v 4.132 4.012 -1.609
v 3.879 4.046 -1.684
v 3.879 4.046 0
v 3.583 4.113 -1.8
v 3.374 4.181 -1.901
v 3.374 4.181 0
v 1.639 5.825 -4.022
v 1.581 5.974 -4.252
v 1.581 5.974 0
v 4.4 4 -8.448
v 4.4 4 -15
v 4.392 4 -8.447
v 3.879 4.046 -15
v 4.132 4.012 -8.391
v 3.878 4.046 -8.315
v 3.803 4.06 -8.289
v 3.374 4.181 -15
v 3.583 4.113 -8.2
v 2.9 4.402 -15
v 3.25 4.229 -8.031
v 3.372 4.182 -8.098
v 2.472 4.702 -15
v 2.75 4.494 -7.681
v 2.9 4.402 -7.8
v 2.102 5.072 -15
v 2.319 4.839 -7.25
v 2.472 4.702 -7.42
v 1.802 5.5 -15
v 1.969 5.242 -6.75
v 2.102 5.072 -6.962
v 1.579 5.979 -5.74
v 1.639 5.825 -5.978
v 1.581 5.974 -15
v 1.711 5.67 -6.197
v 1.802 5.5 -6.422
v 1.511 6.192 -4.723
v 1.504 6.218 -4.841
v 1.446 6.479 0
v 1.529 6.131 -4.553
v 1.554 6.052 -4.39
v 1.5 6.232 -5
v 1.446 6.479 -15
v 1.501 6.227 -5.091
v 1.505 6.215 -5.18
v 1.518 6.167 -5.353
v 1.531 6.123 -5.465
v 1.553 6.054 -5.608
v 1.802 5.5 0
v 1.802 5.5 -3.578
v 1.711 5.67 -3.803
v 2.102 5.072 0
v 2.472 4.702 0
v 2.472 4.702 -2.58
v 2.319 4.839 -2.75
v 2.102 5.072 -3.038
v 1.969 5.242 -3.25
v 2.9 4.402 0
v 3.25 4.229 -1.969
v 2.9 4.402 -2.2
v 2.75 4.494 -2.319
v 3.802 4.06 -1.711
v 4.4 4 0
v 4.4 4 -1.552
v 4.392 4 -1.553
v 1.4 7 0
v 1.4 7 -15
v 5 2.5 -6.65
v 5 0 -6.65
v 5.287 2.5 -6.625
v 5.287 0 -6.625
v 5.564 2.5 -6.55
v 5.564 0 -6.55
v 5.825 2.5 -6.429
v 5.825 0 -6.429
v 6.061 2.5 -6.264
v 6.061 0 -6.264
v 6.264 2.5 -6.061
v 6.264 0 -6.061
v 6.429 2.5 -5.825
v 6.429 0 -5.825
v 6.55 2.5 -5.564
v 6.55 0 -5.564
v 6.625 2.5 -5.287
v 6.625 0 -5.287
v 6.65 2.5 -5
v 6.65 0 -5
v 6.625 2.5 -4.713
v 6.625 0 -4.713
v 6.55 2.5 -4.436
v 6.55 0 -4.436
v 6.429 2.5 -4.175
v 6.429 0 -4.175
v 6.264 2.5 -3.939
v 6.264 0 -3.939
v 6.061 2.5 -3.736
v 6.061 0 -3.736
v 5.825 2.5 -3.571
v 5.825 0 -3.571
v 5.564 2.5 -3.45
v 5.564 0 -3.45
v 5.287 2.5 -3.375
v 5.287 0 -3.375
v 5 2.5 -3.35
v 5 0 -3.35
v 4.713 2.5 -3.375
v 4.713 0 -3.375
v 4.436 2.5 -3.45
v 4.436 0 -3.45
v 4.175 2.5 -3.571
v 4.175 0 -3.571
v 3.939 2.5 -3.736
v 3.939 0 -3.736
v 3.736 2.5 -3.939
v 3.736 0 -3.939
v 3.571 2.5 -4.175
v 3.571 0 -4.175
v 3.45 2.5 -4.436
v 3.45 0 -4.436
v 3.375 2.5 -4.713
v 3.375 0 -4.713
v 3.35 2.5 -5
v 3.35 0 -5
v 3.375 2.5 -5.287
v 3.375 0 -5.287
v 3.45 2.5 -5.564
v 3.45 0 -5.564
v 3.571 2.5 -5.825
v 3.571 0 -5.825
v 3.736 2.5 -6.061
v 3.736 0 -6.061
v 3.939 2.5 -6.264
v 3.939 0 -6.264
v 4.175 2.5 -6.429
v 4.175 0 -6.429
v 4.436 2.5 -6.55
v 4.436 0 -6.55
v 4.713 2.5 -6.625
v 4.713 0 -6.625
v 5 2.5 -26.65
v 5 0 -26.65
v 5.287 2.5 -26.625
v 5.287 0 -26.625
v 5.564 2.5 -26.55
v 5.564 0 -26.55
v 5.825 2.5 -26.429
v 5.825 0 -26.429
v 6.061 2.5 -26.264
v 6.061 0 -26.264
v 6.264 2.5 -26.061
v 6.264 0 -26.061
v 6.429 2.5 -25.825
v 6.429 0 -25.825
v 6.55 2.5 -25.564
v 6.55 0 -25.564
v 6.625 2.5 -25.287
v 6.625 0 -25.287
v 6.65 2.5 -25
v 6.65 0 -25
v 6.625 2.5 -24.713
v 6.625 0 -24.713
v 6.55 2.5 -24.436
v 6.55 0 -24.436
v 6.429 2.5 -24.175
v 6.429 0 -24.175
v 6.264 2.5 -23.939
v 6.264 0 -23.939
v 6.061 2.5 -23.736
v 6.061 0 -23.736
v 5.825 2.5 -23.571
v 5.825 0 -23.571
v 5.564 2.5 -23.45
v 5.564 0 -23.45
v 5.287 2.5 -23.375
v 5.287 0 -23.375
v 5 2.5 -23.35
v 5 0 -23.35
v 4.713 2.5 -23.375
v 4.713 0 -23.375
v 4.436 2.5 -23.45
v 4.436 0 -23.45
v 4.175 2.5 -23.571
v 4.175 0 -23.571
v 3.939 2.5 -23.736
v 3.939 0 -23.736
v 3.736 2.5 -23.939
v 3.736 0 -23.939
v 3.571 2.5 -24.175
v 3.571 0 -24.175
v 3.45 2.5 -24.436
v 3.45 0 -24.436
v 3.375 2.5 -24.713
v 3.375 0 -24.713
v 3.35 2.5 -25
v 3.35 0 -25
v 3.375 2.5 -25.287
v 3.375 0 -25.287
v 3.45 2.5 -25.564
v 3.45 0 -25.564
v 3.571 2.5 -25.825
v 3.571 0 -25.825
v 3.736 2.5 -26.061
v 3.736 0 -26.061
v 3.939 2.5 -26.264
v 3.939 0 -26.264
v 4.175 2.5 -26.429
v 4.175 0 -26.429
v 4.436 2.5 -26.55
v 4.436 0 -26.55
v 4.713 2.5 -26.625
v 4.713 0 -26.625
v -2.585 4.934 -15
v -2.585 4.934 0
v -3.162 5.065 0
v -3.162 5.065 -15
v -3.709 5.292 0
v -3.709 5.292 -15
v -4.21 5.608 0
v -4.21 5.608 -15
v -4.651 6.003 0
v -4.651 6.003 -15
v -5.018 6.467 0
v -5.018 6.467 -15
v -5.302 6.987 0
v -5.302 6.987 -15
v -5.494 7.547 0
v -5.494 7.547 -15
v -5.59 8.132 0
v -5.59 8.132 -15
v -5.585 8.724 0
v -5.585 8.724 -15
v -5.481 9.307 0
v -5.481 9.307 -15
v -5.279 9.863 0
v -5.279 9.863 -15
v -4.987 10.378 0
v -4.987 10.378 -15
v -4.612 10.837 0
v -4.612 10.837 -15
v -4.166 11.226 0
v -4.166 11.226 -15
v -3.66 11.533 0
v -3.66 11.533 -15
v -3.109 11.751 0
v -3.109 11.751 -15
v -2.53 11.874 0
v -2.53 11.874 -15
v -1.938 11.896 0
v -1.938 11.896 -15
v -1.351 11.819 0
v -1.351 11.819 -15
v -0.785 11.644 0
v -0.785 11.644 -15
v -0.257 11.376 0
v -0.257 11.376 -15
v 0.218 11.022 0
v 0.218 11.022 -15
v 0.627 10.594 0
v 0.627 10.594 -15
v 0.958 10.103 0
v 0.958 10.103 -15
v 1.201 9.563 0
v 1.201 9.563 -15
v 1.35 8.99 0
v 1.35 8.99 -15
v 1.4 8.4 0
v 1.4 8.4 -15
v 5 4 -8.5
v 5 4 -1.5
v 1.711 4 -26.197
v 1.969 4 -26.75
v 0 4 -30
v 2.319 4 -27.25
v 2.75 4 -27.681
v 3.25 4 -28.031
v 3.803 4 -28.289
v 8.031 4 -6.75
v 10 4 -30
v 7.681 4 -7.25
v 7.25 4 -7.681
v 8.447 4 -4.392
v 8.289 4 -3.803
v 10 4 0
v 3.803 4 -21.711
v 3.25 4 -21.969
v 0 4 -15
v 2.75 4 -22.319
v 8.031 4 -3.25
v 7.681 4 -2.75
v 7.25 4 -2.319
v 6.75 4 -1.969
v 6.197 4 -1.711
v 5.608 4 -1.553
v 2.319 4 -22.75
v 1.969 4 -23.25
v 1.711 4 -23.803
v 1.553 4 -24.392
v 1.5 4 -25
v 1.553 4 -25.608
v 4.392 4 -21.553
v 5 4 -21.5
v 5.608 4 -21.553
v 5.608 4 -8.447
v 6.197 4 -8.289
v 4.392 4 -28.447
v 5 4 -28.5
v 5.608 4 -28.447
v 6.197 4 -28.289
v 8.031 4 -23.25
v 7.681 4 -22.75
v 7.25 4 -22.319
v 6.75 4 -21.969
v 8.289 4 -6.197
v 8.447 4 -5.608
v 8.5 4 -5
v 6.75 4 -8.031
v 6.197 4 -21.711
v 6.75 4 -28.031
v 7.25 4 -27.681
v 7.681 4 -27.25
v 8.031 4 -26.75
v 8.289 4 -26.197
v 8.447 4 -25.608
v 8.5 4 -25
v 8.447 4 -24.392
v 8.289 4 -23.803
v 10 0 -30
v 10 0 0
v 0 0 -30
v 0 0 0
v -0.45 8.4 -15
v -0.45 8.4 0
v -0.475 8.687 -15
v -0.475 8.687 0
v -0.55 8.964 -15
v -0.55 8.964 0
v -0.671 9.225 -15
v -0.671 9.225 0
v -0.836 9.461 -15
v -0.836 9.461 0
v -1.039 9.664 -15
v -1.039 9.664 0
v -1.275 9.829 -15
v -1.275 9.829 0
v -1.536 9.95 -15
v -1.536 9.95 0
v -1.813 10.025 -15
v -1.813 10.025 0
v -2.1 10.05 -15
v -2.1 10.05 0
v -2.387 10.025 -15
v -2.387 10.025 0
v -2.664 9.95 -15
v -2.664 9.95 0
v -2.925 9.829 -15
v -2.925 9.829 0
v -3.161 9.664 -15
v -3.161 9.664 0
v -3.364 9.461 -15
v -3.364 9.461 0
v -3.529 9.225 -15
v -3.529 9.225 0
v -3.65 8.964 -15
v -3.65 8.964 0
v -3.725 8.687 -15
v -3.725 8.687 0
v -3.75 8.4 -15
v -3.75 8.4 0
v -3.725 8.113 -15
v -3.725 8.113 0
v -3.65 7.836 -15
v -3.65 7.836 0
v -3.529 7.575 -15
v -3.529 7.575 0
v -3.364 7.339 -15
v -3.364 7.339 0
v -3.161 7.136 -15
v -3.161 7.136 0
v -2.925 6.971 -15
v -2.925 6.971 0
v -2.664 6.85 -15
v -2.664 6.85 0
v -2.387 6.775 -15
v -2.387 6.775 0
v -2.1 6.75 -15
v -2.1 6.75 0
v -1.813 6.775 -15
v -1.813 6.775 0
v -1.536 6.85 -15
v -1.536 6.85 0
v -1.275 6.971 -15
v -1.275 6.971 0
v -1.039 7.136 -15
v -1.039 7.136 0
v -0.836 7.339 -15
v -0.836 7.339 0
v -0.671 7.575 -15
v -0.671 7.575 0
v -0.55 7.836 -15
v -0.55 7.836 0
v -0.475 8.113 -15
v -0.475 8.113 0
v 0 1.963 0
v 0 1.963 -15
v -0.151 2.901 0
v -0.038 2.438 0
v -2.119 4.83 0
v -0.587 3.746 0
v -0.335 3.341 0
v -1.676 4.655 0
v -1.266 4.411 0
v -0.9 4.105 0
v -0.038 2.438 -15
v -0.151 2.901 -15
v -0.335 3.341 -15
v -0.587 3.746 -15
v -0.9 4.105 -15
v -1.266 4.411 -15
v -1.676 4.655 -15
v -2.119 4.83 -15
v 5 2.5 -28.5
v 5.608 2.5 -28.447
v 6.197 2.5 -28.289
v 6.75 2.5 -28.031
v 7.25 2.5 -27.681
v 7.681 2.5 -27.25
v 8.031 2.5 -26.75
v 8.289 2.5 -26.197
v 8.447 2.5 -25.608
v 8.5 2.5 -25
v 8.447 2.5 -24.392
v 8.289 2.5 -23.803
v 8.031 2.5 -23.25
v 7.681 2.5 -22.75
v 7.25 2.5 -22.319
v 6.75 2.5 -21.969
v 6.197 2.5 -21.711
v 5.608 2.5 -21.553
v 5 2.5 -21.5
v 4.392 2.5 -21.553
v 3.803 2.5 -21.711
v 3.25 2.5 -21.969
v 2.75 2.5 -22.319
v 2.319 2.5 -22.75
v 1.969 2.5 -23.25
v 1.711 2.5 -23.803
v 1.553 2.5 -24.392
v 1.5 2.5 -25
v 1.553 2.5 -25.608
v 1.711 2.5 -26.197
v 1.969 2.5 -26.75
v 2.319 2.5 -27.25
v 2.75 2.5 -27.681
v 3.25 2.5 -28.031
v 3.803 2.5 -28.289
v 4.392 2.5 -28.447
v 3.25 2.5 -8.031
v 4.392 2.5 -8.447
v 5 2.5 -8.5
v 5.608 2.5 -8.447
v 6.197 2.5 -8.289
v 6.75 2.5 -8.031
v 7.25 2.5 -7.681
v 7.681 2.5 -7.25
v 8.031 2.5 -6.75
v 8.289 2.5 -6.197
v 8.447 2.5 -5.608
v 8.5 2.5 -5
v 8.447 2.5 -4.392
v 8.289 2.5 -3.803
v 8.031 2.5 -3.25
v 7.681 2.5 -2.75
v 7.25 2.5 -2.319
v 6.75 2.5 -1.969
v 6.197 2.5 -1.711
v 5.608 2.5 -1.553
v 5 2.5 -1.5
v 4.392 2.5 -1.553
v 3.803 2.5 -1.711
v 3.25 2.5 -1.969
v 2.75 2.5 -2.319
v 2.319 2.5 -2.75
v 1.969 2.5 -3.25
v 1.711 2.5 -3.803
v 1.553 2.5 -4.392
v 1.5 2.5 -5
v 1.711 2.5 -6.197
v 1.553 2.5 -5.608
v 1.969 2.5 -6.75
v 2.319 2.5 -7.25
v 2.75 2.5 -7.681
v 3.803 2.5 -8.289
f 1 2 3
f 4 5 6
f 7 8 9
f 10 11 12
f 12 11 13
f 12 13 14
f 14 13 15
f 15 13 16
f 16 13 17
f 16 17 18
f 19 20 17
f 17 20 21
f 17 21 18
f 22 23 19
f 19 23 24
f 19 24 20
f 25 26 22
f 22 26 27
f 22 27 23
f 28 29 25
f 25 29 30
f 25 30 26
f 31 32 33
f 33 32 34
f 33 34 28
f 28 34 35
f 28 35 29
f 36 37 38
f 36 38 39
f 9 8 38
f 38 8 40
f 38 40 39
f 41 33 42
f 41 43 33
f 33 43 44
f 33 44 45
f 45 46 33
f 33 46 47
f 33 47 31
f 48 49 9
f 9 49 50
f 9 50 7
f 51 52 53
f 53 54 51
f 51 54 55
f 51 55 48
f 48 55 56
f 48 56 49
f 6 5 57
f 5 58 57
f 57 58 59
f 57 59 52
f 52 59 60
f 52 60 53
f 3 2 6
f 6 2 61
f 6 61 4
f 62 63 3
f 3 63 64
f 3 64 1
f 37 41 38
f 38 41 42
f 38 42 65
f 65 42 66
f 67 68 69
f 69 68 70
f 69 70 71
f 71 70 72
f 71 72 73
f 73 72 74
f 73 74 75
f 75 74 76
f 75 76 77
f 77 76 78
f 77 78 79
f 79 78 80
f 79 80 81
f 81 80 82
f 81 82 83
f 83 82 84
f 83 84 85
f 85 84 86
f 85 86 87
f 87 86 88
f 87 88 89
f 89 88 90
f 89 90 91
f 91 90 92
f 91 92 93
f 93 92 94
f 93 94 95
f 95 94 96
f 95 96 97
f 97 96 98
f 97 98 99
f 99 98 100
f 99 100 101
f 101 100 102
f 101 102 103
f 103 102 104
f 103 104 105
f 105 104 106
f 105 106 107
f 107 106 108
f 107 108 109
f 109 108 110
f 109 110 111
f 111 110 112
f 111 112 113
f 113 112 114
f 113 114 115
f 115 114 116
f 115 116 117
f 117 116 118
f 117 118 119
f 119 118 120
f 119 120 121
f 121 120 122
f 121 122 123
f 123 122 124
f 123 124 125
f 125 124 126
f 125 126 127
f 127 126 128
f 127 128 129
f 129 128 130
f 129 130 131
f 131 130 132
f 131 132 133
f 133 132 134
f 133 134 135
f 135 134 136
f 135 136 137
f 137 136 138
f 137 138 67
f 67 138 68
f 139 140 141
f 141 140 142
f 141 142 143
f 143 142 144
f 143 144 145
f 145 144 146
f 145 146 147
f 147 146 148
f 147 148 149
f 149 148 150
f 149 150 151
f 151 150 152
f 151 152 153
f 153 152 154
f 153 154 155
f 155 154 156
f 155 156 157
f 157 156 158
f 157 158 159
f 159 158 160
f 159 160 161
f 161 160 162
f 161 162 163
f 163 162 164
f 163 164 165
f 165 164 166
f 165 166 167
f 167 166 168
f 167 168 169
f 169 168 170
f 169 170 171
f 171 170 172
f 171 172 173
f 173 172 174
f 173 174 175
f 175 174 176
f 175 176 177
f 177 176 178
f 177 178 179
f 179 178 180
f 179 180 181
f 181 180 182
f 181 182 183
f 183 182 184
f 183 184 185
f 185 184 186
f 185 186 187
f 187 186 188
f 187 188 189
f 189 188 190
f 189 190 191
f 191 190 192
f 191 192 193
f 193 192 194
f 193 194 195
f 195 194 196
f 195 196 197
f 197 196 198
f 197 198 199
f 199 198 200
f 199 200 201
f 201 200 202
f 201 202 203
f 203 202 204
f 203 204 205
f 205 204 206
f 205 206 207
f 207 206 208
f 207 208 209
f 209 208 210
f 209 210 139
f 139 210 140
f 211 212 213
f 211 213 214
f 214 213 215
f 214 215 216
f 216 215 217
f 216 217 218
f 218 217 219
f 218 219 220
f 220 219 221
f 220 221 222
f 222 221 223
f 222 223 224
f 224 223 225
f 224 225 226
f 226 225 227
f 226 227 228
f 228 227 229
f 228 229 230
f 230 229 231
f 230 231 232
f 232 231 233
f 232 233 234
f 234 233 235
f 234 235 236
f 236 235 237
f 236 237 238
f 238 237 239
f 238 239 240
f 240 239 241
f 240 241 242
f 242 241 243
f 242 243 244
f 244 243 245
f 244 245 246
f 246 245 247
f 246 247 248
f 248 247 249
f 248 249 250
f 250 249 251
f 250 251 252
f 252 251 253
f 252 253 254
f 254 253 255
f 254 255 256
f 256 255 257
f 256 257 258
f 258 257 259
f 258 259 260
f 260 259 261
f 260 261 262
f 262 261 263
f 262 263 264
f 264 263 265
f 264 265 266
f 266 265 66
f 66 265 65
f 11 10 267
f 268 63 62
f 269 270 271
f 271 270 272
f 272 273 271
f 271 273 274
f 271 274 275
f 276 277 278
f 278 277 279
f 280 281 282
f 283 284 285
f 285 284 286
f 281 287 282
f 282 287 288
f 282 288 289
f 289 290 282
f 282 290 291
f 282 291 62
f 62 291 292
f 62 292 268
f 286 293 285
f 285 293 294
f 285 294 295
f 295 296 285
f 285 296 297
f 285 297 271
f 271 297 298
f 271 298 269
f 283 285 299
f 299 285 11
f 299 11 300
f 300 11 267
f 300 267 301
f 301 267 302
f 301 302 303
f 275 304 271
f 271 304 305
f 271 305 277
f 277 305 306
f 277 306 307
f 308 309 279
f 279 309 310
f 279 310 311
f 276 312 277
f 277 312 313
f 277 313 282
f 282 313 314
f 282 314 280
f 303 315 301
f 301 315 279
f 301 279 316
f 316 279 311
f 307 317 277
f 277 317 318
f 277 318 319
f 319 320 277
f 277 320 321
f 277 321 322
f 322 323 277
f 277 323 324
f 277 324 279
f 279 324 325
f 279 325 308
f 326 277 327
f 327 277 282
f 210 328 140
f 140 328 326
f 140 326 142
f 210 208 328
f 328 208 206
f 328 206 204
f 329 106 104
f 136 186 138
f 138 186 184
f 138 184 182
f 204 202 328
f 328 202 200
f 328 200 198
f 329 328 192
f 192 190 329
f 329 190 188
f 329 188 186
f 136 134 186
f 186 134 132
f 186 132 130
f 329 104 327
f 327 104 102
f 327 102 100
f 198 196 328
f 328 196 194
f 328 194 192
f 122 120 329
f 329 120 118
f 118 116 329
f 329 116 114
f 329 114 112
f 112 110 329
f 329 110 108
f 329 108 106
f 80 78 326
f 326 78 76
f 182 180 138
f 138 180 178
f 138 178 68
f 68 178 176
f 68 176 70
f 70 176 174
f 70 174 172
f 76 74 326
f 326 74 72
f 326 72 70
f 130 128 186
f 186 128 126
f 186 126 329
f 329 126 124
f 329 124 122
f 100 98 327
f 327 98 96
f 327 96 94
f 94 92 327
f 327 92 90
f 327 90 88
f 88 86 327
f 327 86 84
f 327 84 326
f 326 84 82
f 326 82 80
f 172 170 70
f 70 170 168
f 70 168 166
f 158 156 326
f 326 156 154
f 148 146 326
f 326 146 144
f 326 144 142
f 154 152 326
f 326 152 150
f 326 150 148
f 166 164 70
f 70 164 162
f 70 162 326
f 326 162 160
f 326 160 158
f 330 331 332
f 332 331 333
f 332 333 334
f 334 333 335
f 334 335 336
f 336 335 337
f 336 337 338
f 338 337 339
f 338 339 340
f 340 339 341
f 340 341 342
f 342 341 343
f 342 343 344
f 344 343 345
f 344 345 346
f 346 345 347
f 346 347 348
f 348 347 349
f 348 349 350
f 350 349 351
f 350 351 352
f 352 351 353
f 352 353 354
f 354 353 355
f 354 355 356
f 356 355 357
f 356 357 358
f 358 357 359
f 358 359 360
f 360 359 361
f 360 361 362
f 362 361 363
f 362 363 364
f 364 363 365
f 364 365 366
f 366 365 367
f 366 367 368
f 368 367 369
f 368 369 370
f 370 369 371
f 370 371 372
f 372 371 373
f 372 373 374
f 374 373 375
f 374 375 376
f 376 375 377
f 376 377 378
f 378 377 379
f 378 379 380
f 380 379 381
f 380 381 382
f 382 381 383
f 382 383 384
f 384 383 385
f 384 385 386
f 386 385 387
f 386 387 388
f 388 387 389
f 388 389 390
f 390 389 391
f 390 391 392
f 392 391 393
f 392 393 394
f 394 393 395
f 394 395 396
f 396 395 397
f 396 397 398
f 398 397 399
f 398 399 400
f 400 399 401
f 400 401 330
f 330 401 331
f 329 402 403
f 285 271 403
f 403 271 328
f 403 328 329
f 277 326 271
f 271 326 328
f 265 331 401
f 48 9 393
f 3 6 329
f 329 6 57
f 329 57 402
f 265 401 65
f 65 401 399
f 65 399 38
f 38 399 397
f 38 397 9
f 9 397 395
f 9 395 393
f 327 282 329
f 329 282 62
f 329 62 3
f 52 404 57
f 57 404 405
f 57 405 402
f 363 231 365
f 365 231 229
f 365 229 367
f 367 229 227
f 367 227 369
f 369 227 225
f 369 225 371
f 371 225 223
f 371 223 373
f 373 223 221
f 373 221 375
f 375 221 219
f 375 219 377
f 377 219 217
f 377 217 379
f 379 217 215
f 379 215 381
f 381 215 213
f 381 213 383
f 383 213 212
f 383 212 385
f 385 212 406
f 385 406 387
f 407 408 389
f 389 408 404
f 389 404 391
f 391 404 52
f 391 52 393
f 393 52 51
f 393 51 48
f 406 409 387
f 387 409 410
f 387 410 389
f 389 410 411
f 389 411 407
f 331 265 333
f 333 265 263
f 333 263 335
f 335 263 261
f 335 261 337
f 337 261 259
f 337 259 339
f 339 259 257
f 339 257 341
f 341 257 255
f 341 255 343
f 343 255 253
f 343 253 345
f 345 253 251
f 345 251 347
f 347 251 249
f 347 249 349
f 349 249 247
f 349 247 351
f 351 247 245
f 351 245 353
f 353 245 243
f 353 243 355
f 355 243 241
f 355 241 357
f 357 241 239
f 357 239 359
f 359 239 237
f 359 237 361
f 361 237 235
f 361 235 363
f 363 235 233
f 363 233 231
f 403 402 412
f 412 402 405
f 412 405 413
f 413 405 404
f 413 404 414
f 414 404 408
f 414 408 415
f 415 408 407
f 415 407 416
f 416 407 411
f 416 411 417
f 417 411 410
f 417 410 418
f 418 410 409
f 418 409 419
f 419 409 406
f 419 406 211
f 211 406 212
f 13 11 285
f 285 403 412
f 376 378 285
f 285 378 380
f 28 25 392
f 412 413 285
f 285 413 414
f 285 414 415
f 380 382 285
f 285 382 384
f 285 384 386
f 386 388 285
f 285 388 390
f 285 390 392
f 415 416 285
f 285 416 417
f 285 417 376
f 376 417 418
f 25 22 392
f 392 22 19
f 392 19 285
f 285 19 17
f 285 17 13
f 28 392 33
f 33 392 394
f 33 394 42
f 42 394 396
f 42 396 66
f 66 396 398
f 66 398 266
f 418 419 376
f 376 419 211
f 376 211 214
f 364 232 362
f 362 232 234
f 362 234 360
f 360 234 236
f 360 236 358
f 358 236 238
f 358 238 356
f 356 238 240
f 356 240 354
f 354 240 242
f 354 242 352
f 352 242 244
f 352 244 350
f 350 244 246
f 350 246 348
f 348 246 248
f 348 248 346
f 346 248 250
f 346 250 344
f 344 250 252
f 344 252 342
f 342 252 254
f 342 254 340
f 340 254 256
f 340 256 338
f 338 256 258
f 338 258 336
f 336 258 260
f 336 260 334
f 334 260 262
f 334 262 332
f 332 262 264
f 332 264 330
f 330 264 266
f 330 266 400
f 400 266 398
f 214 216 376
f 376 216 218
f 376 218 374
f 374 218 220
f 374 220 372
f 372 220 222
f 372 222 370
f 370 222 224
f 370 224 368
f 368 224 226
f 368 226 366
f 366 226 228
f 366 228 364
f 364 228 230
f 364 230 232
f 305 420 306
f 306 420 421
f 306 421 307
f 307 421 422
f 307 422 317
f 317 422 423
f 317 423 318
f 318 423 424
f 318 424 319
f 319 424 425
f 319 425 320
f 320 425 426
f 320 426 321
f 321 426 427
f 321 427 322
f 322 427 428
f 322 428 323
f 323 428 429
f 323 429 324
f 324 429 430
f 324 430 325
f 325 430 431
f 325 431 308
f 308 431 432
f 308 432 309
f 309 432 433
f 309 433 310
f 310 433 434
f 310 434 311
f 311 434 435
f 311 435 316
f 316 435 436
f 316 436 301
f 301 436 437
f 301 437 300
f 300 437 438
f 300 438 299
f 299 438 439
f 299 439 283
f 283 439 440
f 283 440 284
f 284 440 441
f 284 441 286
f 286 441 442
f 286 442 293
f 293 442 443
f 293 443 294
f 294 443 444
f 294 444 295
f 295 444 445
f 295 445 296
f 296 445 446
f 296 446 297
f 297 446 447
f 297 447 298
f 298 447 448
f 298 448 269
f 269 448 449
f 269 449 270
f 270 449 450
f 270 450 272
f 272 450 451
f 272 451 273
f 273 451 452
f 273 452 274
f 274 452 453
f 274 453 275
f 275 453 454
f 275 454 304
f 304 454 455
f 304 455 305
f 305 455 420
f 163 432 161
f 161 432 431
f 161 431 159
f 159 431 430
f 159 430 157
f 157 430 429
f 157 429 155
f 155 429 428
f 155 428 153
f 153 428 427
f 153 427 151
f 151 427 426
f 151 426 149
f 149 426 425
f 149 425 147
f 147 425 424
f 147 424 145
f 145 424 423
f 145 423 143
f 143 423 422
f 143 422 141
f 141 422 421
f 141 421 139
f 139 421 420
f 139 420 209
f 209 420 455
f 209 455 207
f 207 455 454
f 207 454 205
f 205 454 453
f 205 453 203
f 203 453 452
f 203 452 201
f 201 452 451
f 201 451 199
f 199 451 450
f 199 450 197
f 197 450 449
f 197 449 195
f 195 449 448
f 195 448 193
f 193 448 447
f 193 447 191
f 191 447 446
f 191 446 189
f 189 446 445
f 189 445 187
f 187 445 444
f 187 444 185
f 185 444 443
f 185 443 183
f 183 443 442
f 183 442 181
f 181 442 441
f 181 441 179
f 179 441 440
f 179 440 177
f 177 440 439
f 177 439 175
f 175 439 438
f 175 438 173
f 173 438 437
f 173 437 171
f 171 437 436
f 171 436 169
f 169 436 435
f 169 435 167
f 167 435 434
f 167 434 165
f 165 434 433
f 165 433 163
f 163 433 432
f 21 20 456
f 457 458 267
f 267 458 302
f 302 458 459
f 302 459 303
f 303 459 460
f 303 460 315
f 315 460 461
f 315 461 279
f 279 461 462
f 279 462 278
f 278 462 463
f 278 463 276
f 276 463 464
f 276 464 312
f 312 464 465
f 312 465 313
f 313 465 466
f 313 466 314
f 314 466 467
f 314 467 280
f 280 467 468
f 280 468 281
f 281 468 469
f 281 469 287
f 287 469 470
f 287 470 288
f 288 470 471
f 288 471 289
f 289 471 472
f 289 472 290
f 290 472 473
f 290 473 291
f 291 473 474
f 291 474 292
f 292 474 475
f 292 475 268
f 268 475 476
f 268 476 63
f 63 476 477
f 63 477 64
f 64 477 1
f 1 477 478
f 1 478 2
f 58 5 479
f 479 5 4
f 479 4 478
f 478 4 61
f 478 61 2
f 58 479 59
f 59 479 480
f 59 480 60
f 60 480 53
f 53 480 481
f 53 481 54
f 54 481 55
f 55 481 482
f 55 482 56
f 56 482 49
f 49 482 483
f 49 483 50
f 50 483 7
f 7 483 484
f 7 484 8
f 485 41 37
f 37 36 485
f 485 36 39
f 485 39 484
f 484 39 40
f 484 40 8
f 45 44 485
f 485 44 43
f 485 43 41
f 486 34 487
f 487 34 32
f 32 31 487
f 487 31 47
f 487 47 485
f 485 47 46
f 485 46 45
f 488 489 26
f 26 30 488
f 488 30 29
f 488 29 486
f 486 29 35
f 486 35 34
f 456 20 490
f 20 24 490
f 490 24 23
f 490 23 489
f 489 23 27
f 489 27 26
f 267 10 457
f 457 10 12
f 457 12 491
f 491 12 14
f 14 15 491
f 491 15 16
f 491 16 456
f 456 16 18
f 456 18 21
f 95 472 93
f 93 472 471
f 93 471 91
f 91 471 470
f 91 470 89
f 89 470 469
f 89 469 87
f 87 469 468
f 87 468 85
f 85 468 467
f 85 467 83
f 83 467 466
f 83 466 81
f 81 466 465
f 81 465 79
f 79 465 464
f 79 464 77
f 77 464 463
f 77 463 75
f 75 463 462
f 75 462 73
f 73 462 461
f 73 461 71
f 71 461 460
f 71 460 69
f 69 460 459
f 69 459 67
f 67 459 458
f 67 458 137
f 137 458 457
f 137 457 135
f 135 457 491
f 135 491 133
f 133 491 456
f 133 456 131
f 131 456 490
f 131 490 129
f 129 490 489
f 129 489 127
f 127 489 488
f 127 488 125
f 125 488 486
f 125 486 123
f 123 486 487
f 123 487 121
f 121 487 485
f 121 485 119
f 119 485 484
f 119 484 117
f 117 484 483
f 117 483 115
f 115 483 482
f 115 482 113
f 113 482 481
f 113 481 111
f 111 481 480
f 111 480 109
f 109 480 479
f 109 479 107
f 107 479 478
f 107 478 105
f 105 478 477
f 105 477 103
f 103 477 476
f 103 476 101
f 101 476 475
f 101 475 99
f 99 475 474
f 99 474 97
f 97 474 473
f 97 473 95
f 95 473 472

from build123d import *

# Parameters (mm, degrees)
SKETCH1_R               = 3.5
SKETCH1_R_2             = 1.65
SKETCH1_W               = 10
SKETCH1_H               = 4
BOSS_EXTRUDE1_DEPTH     = 30
FILLET1_R               = 3
FILLET2_R               = 3
CUT_EXTRUDE1_DEPTH      = 15
CUT_EXTRUDE2_DEPTH      = 7
CUT_EXTRUDE2_DEPTH_BACK = 15
SKETCH3_R               = 1.65
CUT_EXTRUDE3_DEPTH      = 15
CUT_EXTRUDE3_DEPTH_BACK = 1.5
SKETCH4_R               = 3.5


with BuildPart() as part:
    # Sketch1 → Boss-Extrude1 (new body)
    # profile 1 of 3: a face of its own
    with BuildSketch(Plane.XY):
        with Locations((-2.1, 8.4)):
            Circle(SKETCH1_R)
        with Locations((-2.1, 8.4)):
            Circle(SKETCH1_R_2, mode=Mode.SUBTRACT)
    # profile 2 of 3: a face of its own
    with BuildSketch(Plane.XY):
        with BuildLine():
            Line((0, 5.6), (0, 4))
            Line((0, 4), (1.4, 4))
            Line((1.4, 4), (1.4, 8.4))
            ThreePointArc((1.4, 8.4), (1.030495168, 6.834752416), (0, 5.6))
        make_face()
    # profile 3 of 3: a face of its own
    with BuildSketch(Plane.XY):
        with Locations((5, 2)):
            Rectangle(SKETCH1_W, SKETCH1_H)
    extrude(amount=-BOSS_EXTRUDE1_DEPTH)

    # Fillet1
    fillet1_edges = [part.edges().sort_by_distance(p)[0] for p in [
        (1.4, 4, -15),
    ]]
    fillet(fillet1_edges, radius=FILLET1_R)

    # Fillet2
    fillet2_edges = [part.edges().sort_by_distance(p)[0] for p in [
        (0, 5.6, -15),
    ]]
    fillet(fillet2_edges, radius=FILLET2_R)

    # Sketch2 → Cut-Extrude1 (cut)
    with BuildSketch(Plane(origin=(0, 0, -30), x_dir=(-1, 0, 0), z_dir=(0, 0, -1))):
        Polygon((-4.4, 4), (0, 4), (0, 0), (6.883389495, 0), (6.883389495, 4), (6.883389495, 12.878531322), (-4.4, 12.878531322), align=None)
    extrude(amount=-CUT_EXTRUDE1_DEPTH, mode=Mode.SUBTRACT)

    # Sketch3 → Cut-Extrude2 (cut, two sides: drawn at the far end of the back side and taken through both)
    with BuildSketch(Plane(origin=(0, 4, 0), x_dir=(1, 0, 0), z_dir=(0, 1, 0)).offset(-CUT_EXTRUDE2_DEPTH_BACK)):
        with Locations(Location((5, 5, 0), (0, 0, 90))):
            Circle(SKETCH3_R)
        with Locations(Location((5, 25, 0), (0, 0, 90))):
            Circle(SKETCH3_R)
    extrude(amount=CUT_EXTRUDE2_DEPTH + CUT_EXTRUDE2_DEPTH_BACK, mode=Mode.SUBTRACT)

    # Sketch4 → Cut-Extrude3 (cut, two sides: drawn at the far end of the back side and taken through both)
    with BuildSketch(Plane(origin=(0, 4, 0), x_dir=(1, 0, 0), z_dir=(0, 1, 0)).offset(-CUT_EXTRUDE3_DEPTH_BACK)):
        with Locations(Location((5, 5, 0), (0, 0, 99.870889606))):
            Circle(SKETCH4_R)
        with Locations(Location((5, 25, 0), (0, 0, 90))):
            Circle(SKETCH4_R)
    extrude(amount=CUT_EXTRUDE3_DEPTH + CUT_EXTRUDE3_DEPTH_BACK, mode=Mode.SUBTRACT)


solid = part.part
